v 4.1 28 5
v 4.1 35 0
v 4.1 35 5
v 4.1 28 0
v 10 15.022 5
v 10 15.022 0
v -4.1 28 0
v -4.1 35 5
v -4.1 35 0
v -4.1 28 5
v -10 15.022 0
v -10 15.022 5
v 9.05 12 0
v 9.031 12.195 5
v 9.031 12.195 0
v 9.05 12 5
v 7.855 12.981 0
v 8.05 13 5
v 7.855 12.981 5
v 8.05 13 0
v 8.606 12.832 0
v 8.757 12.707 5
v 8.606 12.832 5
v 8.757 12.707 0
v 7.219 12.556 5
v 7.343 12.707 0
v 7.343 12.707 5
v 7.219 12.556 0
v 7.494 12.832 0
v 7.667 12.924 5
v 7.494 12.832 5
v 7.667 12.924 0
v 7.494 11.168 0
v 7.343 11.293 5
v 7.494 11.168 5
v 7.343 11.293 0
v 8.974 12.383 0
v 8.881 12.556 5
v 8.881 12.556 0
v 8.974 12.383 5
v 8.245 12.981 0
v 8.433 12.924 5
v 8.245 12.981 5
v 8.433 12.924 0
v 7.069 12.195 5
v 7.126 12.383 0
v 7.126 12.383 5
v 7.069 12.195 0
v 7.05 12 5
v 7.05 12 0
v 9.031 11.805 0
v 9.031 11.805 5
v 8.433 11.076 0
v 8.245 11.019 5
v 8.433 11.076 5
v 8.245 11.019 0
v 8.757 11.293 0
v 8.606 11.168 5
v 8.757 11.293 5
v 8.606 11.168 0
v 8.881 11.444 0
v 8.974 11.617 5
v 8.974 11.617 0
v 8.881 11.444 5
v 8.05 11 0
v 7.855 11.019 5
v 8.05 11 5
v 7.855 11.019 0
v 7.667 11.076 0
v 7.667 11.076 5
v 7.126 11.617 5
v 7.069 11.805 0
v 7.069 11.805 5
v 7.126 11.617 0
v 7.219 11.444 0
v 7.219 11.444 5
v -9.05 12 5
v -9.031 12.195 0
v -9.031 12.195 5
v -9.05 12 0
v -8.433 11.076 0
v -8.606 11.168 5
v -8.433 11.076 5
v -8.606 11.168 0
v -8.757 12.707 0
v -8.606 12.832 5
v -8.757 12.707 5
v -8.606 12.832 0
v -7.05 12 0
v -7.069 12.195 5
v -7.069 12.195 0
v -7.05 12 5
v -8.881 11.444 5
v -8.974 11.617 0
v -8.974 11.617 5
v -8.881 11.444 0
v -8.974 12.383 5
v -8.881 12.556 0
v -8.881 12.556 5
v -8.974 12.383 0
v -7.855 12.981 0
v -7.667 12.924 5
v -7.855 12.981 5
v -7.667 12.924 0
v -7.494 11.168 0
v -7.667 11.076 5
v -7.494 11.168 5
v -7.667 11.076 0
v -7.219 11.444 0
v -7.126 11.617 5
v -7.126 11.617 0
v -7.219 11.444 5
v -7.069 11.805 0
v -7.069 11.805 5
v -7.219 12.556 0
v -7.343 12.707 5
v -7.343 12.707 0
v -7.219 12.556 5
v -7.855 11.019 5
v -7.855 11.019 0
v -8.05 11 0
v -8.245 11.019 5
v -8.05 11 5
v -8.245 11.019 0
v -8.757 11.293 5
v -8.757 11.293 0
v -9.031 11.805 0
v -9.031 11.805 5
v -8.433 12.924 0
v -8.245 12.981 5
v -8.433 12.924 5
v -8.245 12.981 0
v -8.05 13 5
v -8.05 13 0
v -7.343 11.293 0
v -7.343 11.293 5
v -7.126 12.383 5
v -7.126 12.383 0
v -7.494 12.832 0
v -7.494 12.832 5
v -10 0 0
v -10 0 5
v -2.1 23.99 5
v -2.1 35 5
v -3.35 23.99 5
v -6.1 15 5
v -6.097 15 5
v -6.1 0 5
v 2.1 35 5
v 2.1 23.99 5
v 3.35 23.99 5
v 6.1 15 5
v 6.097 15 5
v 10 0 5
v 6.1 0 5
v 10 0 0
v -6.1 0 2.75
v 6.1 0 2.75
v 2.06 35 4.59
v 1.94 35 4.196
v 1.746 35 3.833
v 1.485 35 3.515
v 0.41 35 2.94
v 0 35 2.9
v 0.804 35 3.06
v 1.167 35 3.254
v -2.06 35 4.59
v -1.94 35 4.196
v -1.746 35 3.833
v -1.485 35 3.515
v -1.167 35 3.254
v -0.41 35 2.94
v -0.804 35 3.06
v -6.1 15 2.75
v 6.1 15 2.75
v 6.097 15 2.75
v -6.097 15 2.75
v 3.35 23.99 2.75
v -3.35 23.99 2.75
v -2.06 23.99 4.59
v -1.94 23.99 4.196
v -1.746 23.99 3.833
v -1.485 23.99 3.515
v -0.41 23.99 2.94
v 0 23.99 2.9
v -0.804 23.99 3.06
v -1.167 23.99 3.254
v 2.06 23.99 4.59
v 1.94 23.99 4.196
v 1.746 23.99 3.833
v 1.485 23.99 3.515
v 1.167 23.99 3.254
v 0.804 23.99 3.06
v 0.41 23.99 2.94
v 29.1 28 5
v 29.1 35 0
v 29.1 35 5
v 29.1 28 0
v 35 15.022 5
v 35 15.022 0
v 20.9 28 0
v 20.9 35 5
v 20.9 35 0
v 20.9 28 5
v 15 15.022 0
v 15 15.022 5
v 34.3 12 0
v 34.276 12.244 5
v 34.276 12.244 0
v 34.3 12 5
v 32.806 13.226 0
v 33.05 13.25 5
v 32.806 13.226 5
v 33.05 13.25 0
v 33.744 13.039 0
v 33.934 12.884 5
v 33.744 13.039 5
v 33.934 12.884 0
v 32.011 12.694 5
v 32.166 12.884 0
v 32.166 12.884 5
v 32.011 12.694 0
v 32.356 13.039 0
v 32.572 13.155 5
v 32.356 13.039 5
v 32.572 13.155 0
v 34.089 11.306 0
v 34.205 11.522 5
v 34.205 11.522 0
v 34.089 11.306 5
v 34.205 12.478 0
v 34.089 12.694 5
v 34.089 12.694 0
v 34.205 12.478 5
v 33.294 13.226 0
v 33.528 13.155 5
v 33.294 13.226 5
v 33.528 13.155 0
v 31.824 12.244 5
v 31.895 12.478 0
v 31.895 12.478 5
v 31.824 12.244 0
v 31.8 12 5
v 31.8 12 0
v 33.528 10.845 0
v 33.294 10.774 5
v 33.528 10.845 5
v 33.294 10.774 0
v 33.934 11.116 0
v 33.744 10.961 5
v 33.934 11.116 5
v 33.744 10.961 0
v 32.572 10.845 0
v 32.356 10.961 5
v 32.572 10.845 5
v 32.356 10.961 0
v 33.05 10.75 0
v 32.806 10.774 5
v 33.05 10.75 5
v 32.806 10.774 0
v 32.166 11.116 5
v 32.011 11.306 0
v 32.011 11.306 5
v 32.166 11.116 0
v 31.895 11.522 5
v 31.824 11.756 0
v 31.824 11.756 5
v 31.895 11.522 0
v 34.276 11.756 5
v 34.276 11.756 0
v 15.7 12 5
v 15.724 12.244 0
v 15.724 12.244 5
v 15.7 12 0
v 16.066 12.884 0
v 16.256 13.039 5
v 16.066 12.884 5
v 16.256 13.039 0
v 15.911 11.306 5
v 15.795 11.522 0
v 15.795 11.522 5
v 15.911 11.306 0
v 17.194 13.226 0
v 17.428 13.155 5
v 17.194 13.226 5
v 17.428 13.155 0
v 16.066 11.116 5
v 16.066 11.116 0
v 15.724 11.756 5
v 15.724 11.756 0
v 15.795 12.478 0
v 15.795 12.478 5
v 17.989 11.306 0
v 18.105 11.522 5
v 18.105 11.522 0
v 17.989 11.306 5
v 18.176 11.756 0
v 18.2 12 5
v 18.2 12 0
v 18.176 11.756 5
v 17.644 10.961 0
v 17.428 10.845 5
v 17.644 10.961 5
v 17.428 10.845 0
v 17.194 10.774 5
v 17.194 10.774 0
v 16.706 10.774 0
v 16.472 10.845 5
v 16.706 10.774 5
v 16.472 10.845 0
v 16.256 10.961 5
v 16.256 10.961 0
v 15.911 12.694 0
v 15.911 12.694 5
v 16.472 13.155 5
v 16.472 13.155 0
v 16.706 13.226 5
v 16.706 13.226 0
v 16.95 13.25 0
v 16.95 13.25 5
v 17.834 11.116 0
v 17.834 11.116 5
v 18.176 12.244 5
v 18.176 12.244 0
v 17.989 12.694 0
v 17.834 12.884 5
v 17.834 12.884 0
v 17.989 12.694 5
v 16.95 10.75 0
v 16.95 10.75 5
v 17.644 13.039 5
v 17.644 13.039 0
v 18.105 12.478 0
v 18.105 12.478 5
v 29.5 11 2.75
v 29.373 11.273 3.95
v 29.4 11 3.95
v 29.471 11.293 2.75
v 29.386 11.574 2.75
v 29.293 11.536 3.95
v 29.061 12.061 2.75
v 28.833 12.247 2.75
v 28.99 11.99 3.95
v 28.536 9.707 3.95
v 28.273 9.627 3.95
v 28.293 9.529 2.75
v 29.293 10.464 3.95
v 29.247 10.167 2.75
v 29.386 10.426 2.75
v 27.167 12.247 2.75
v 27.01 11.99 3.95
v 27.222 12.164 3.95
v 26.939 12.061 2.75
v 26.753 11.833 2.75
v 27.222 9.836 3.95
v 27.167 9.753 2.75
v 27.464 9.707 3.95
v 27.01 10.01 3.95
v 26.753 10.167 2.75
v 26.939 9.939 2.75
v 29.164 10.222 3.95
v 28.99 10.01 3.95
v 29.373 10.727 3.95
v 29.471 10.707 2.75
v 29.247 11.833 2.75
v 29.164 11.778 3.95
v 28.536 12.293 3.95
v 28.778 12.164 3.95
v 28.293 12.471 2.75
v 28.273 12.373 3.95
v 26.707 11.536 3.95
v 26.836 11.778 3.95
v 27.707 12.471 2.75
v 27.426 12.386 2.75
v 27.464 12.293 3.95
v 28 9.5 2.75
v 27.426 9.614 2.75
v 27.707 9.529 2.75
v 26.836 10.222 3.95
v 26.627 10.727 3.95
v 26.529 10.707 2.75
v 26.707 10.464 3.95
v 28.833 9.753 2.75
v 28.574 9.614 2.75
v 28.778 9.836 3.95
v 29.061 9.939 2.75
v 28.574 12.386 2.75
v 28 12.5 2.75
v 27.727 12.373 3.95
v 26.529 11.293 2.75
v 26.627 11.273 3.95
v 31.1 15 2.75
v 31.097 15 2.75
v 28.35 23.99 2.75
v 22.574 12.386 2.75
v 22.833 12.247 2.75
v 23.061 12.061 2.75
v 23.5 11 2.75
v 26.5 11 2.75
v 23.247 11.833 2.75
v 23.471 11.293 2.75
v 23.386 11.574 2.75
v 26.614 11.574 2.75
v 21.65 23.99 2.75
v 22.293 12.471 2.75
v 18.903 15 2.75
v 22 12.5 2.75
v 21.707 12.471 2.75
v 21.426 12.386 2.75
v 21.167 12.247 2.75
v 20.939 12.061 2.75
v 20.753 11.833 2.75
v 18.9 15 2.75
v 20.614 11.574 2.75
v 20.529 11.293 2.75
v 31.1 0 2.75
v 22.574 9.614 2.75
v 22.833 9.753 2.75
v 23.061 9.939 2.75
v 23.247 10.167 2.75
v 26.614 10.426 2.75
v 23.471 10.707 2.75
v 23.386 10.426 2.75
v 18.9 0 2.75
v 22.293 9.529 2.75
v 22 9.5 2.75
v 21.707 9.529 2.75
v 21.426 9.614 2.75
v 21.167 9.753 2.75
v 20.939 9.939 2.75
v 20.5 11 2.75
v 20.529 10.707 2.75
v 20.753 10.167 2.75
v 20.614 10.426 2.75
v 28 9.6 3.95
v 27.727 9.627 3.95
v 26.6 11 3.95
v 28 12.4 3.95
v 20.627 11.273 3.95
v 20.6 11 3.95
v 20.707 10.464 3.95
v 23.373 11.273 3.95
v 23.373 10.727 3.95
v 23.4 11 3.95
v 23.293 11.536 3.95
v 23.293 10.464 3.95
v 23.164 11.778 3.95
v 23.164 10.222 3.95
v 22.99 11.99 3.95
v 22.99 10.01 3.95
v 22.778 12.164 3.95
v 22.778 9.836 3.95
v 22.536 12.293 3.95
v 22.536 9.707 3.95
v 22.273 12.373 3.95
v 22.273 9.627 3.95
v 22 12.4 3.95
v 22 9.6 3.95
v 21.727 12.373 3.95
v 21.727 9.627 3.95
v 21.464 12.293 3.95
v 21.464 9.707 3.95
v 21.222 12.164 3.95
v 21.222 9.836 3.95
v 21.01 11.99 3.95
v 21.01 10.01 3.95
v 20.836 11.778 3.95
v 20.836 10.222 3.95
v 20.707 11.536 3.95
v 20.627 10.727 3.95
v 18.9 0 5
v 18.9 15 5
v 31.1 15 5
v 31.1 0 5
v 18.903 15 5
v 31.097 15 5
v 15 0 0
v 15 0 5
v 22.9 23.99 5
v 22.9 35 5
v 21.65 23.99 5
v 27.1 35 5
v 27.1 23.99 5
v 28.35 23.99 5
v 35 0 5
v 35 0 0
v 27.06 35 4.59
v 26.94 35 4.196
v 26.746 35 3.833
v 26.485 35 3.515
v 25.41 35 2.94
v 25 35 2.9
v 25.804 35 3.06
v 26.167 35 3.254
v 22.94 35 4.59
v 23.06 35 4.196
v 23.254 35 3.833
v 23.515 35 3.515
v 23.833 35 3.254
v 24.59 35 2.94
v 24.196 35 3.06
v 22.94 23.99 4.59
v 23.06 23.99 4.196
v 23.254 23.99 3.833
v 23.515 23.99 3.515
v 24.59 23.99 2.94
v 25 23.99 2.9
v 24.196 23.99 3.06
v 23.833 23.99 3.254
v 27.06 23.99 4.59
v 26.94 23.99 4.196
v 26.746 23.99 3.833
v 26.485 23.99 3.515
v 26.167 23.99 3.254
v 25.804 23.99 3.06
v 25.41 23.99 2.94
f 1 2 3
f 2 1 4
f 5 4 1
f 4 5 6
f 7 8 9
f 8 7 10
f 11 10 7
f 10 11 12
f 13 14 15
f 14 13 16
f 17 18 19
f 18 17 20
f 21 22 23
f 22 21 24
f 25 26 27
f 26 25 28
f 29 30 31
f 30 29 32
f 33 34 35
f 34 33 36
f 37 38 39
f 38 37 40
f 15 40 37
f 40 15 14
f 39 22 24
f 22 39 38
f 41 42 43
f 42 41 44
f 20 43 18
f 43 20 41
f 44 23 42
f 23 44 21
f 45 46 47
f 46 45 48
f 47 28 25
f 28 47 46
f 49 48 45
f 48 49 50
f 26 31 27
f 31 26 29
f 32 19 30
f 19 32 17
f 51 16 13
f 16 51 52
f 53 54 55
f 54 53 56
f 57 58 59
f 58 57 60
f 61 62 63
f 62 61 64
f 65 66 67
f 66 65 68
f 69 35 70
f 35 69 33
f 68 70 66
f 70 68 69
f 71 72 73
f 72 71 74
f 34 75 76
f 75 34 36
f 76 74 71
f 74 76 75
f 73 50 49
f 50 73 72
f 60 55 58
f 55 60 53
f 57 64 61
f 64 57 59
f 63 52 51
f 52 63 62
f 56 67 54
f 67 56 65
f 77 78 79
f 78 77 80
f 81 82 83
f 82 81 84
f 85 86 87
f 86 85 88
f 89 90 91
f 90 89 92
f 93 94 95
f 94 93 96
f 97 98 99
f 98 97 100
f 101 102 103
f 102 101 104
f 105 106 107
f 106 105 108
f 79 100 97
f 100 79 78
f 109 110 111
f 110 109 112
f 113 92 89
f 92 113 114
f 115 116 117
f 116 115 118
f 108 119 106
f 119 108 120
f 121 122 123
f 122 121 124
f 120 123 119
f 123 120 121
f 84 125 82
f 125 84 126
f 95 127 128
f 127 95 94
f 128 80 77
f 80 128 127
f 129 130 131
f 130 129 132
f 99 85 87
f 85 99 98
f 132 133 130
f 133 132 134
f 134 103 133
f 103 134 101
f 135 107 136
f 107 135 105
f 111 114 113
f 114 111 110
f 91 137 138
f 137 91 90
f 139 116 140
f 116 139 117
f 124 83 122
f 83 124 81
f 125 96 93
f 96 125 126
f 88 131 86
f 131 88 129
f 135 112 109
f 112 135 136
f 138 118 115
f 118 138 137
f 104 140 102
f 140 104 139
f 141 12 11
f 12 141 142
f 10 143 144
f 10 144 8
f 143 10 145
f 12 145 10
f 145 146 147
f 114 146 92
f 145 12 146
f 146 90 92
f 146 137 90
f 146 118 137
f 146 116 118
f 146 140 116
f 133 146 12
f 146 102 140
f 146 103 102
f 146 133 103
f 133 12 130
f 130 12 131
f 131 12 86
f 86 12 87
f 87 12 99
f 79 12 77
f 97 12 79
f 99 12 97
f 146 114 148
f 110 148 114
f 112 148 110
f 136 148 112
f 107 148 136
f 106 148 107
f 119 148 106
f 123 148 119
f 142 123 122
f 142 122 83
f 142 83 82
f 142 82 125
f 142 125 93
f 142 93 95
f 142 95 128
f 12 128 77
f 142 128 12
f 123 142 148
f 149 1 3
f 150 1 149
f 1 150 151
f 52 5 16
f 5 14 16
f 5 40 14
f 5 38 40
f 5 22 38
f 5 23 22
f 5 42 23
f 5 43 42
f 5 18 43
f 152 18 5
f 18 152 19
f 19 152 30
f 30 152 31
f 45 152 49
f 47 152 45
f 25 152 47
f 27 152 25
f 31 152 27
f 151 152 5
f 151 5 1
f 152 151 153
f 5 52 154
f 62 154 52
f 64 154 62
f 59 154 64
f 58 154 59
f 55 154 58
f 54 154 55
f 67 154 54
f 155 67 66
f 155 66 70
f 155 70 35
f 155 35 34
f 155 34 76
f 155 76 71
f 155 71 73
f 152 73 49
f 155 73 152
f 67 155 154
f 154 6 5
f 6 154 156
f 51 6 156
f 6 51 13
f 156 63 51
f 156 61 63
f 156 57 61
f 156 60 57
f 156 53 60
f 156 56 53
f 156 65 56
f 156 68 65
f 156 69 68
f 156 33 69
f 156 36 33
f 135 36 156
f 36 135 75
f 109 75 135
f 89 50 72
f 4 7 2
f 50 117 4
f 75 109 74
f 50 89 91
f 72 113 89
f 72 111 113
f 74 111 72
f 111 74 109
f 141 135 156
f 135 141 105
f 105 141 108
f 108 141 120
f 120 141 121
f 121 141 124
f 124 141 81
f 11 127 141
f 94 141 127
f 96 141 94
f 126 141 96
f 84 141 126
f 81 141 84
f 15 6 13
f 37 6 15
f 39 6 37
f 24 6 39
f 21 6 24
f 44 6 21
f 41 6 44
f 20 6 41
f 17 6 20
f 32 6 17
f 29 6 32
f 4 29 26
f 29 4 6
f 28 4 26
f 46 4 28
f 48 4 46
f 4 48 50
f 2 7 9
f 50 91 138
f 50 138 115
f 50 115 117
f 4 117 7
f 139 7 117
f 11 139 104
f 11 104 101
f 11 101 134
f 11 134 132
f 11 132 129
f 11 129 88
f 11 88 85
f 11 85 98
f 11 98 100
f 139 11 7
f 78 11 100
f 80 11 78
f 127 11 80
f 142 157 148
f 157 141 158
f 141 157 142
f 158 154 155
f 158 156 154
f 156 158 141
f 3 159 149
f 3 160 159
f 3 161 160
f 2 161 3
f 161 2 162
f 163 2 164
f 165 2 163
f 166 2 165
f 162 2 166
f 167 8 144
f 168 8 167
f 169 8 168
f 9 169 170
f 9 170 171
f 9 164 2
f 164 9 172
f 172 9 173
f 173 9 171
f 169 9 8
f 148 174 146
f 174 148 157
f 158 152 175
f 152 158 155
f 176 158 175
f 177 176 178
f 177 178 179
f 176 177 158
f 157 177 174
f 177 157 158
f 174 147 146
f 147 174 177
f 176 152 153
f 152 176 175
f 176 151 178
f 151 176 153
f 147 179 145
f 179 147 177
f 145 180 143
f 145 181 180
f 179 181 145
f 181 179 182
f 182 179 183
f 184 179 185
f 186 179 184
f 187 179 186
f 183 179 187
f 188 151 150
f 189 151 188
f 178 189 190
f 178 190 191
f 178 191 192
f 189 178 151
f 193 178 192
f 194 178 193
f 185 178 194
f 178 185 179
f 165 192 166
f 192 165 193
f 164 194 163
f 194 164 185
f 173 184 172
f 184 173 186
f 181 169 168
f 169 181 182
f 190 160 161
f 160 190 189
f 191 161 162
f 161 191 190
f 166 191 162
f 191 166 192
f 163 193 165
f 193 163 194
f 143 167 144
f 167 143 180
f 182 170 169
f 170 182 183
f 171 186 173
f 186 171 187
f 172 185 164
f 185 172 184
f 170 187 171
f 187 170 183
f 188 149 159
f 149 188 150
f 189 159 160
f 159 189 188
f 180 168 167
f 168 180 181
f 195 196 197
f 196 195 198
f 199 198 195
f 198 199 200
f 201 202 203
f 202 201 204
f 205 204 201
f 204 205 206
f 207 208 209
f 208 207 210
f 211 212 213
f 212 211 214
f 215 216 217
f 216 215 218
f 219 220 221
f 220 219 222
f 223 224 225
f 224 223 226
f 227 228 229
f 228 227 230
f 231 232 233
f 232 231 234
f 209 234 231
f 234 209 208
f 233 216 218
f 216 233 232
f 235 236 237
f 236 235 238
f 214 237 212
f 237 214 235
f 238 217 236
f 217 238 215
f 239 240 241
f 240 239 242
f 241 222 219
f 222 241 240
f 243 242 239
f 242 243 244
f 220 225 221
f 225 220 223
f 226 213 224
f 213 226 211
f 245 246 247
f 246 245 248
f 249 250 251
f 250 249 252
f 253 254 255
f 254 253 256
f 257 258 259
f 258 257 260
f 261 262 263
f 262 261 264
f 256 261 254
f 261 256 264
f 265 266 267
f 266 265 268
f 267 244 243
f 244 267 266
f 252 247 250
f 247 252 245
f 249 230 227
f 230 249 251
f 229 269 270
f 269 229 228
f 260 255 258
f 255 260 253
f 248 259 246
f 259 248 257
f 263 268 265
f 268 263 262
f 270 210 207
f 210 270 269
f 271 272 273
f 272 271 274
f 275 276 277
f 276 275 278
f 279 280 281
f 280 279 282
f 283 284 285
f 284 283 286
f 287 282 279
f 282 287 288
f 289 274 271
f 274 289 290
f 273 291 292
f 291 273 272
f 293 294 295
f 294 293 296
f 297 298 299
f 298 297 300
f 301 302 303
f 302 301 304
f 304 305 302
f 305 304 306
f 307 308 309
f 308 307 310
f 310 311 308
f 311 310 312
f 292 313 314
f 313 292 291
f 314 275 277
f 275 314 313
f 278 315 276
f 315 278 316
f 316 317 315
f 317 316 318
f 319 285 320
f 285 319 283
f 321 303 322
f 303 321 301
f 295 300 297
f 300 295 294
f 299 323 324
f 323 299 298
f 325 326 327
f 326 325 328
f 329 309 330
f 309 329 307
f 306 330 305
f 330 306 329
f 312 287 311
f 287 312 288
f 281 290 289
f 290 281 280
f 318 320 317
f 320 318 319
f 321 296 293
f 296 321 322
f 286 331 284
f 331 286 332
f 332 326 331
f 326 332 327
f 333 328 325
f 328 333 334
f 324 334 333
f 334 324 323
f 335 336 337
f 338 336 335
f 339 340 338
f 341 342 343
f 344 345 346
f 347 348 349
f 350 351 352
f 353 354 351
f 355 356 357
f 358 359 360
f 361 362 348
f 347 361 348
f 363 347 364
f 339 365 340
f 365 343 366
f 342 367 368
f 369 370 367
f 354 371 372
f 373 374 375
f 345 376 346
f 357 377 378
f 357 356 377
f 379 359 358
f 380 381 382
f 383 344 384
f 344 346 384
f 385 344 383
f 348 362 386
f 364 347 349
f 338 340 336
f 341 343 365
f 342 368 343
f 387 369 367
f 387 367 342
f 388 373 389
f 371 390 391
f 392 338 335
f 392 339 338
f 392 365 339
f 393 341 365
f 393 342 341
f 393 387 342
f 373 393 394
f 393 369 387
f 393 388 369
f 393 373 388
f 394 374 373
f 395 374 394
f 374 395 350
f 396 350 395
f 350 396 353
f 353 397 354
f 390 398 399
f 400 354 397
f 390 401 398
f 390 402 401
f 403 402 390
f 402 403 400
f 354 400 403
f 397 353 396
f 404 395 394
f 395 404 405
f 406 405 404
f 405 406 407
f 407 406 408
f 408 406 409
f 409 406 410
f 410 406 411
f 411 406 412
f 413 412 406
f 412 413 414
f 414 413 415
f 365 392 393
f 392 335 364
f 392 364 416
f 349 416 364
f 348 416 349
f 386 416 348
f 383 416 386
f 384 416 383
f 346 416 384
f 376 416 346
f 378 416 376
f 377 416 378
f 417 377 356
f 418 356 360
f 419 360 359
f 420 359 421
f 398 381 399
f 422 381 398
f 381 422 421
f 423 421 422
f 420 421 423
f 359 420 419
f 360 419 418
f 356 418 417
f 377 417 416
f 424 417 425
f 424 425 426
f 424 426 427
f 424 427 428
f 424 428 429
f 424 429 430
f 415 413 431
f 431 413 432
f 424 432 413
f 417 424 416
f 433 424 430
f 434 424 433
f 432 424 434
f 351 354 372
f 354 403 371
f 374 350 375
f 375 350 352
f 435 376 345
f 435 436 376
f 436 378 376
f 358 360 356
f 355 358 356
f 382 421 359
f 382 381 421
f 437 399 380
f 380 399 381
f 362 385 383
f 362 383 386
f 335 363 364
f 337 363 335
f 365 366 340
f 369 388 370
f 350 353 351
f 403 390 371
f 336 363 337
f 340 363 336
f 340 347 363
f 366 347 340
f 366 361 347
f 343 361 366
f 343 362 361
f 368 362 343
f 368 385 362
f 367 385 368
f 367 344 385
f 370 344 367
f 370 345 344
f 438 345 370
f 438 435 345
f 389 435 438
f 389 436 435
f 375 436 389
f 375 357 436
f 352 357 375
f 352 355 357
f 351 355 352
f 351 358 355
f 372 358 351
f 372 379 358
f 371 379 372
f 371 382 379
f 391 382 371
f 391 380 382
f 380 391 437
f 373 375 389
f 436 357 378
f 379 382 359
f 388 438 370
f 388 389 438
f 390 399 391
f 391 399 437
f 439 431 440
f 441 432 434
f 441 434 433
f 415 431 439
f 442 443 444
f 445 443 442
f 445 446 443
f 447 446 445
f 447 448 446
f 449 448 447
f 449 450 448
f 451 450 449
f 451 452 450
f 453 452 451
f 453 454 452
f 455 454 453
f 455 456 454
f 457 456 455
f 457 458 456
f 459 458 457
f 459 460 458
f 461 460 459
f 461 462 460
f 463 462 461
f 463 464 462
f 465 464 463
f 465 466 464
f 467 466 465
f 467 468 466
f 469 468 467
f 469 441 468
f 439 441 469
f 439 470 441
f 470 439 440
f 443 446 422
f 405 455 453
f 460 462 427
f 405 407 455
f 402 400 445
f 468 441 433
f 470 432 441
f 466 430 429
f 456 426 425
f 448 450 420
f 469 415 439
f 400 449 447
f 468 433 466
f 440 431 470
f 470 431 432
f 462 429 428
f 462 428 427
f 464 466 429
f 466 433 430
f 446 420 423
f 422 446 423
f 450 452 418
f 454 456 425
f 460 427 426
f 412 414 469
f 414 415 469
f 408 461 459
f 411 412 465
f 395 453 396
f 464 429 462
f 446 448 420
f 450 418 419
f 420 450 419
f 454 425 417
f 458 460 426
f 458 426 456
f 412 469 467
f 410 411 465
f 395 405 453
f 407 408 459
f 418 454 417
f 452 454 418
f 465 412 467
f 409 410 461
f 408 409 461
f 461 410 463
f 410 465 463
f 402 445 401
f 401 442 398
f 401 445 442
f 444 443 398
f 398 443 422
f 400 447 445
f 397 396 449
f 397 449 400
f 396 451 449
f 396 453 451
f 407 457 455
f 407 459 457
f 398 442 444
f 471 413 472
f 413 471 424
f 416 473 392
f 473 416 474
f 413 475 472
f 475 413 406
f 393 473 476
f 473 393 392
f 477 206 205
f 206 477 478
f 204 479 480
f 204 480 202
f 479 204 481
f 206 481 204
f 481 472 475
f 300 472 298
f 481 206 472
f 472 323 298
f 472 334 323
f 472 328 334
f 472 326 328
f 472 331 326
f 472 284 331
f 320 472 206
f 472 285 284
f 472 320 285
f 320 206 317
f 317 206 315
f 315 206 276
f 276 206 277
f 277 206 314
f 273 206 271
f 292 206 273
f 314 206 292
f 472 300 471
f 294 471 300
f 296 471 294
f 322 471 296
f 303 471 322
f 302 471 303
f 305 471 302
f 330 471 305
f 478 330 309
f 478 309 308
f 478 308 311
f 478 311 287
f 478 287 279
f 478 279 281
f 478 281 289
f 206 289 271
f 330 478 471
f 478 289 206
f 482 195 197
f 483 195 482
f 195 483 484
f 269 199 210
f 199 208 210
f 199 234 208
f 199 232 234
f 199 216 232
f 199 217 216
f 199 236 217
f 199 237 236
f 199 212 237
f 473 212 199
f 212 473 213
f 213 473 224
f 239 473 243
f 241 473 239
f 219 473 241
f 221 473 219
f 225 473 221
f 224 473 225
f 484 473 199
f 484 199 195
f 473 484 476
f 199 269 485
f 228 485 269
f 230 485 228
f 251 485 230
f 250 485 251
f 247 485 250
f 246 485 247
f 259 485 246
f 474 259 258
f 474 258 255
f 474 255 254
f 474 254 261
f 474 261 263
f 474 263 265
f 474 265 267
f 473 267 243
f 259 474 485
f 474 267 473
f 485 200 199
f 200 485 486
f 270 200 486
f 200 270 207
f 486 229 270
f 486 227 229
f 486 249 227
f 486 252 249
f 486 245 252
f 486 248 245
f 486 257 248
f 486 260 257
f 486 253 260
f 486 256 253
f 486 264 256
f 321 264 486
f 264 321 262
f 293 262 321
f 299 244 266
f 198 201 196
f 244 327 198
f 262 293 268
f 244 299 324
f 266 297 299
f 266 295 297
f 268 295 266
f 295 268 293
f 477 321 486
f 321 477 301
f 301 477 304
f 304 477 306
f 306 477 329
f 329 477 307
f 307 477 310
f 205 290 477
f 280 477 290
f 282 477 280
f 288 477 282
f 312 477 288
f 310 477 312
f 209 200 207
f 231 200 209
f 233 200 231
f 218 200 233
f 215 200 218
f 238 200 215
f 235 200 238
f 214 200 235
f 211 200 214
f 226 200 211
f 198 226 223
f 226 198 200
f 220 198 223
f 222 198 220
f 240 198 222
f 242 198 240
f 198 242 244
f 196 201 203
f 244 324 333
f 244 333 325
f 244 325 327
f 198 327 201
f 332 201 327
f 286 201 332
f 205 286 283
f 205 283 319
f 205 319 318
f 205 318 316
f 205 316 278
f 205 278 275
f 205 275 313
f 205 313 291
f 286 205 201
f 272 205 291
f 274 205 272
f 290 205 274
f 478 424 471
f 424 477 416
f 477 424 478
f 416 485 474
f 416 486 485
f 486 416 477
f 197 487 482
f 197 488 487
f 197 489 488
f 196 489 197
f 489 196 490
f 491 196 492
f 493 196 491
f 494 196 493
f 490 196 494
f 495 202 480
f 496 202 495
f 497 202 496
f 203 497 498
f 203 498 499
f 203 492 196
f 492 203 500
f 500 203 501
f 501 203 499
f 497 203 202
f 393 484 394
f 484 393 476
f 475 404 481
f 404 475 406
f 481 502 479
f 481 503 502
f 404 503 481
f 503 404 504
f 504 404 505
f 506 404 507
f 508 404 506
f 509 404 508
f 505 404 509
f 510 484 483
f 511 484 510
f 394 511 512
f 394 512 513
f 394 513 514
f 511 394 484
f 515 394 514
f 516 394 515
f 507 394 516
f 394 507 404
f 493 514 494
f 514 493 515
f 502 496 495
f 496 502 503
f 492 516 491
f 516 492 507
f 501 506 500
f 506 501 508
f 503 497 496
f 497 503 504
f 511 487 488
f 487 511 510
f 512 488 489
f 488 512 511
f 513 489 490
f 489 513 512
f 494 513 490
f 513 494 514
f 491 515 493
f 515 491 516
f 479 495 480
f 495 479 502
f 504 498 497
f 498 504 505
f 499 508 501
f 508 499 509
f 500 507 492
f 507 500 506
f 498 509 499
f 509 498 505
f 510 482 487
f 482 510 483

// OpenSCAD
module Housing(metal_wide=12.2,metal_tall=4.5,wide=20,thick=10,pegs=false,logo=false,screw_holes=1) {
  difference() {
    translate([-wide/2,0,0]) cube([wide,35,thick/2]);
    difference() {
      translate([-metal_wide/2,-0.01,(thick-metal_tall)/2])
        cube([12.2,15.01,10]);
      if(pegs) {
        for(x_scale=[1,-1]) scale([x_scale,1,1])
          translate([6/2,11,(thick-metal_tall)/2]) cylinder(d1=3,d2=2.8,$fn=32,h=1.2);
      }
    }
    // wire fanout
    translate([0,14.99,(thick-metal_tall)/2])
      linear_extrude(height=10)
      polygon(points=[[metal_wide/2,0], [6.7/2,9], [-6.7/2,9], [-metal_wide/2,0]]);

    // wire exit
    translate([0,14.99,thick/2]) rotate([-90,0,0])
      cylinder(d=4.2,h=100,$fn=32);
    // outside taper
    for(x_scale=[1,-1]) scale([x_scale,1,1])
      translate([0,0,-0.01]) linear_extrude(height=10)
      polygon(points=[[wide/2+.01,15], [wide/2+.01,36], [4.2/2+2,36], [4.2/2+2,28]]);
    // clamping holes
    for(x_scale=[1,-1]) scale([x_scale,1,1])
      translate([(wide+metal_wide)/4,12,-1]) cylinder(d=screw_holes,h=10,$fn=32);
    // TODO usb logo
  }
}

Housing(screw_holes=2);
translate([25,0,0]) Housing(pegs=true, logo=true, screw_holes=2.5);
